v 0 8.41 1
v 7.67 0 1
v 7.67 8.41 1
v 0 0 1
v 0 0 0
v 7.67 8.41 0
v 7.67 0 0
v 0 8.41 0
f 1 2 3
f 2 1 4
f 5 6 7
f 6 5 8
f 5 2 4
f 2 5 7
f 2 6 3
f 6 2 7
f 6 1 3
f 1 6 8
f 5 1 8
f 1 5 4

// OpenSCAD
/* Warning, this is a very basic generator with a lot of approximation 
input data : [CDFP, HHB, 7.67x8.41mm, 8, , B, C04-21533B]
generated by com.zoubworld.electronics.cad.model3d.Basic
Date : Sun Feb 15 10:50:49 CET 2026
*/

//body
color("black")
translate([0,0,0])
cube([7.67,8.41,1.0], center=false);
